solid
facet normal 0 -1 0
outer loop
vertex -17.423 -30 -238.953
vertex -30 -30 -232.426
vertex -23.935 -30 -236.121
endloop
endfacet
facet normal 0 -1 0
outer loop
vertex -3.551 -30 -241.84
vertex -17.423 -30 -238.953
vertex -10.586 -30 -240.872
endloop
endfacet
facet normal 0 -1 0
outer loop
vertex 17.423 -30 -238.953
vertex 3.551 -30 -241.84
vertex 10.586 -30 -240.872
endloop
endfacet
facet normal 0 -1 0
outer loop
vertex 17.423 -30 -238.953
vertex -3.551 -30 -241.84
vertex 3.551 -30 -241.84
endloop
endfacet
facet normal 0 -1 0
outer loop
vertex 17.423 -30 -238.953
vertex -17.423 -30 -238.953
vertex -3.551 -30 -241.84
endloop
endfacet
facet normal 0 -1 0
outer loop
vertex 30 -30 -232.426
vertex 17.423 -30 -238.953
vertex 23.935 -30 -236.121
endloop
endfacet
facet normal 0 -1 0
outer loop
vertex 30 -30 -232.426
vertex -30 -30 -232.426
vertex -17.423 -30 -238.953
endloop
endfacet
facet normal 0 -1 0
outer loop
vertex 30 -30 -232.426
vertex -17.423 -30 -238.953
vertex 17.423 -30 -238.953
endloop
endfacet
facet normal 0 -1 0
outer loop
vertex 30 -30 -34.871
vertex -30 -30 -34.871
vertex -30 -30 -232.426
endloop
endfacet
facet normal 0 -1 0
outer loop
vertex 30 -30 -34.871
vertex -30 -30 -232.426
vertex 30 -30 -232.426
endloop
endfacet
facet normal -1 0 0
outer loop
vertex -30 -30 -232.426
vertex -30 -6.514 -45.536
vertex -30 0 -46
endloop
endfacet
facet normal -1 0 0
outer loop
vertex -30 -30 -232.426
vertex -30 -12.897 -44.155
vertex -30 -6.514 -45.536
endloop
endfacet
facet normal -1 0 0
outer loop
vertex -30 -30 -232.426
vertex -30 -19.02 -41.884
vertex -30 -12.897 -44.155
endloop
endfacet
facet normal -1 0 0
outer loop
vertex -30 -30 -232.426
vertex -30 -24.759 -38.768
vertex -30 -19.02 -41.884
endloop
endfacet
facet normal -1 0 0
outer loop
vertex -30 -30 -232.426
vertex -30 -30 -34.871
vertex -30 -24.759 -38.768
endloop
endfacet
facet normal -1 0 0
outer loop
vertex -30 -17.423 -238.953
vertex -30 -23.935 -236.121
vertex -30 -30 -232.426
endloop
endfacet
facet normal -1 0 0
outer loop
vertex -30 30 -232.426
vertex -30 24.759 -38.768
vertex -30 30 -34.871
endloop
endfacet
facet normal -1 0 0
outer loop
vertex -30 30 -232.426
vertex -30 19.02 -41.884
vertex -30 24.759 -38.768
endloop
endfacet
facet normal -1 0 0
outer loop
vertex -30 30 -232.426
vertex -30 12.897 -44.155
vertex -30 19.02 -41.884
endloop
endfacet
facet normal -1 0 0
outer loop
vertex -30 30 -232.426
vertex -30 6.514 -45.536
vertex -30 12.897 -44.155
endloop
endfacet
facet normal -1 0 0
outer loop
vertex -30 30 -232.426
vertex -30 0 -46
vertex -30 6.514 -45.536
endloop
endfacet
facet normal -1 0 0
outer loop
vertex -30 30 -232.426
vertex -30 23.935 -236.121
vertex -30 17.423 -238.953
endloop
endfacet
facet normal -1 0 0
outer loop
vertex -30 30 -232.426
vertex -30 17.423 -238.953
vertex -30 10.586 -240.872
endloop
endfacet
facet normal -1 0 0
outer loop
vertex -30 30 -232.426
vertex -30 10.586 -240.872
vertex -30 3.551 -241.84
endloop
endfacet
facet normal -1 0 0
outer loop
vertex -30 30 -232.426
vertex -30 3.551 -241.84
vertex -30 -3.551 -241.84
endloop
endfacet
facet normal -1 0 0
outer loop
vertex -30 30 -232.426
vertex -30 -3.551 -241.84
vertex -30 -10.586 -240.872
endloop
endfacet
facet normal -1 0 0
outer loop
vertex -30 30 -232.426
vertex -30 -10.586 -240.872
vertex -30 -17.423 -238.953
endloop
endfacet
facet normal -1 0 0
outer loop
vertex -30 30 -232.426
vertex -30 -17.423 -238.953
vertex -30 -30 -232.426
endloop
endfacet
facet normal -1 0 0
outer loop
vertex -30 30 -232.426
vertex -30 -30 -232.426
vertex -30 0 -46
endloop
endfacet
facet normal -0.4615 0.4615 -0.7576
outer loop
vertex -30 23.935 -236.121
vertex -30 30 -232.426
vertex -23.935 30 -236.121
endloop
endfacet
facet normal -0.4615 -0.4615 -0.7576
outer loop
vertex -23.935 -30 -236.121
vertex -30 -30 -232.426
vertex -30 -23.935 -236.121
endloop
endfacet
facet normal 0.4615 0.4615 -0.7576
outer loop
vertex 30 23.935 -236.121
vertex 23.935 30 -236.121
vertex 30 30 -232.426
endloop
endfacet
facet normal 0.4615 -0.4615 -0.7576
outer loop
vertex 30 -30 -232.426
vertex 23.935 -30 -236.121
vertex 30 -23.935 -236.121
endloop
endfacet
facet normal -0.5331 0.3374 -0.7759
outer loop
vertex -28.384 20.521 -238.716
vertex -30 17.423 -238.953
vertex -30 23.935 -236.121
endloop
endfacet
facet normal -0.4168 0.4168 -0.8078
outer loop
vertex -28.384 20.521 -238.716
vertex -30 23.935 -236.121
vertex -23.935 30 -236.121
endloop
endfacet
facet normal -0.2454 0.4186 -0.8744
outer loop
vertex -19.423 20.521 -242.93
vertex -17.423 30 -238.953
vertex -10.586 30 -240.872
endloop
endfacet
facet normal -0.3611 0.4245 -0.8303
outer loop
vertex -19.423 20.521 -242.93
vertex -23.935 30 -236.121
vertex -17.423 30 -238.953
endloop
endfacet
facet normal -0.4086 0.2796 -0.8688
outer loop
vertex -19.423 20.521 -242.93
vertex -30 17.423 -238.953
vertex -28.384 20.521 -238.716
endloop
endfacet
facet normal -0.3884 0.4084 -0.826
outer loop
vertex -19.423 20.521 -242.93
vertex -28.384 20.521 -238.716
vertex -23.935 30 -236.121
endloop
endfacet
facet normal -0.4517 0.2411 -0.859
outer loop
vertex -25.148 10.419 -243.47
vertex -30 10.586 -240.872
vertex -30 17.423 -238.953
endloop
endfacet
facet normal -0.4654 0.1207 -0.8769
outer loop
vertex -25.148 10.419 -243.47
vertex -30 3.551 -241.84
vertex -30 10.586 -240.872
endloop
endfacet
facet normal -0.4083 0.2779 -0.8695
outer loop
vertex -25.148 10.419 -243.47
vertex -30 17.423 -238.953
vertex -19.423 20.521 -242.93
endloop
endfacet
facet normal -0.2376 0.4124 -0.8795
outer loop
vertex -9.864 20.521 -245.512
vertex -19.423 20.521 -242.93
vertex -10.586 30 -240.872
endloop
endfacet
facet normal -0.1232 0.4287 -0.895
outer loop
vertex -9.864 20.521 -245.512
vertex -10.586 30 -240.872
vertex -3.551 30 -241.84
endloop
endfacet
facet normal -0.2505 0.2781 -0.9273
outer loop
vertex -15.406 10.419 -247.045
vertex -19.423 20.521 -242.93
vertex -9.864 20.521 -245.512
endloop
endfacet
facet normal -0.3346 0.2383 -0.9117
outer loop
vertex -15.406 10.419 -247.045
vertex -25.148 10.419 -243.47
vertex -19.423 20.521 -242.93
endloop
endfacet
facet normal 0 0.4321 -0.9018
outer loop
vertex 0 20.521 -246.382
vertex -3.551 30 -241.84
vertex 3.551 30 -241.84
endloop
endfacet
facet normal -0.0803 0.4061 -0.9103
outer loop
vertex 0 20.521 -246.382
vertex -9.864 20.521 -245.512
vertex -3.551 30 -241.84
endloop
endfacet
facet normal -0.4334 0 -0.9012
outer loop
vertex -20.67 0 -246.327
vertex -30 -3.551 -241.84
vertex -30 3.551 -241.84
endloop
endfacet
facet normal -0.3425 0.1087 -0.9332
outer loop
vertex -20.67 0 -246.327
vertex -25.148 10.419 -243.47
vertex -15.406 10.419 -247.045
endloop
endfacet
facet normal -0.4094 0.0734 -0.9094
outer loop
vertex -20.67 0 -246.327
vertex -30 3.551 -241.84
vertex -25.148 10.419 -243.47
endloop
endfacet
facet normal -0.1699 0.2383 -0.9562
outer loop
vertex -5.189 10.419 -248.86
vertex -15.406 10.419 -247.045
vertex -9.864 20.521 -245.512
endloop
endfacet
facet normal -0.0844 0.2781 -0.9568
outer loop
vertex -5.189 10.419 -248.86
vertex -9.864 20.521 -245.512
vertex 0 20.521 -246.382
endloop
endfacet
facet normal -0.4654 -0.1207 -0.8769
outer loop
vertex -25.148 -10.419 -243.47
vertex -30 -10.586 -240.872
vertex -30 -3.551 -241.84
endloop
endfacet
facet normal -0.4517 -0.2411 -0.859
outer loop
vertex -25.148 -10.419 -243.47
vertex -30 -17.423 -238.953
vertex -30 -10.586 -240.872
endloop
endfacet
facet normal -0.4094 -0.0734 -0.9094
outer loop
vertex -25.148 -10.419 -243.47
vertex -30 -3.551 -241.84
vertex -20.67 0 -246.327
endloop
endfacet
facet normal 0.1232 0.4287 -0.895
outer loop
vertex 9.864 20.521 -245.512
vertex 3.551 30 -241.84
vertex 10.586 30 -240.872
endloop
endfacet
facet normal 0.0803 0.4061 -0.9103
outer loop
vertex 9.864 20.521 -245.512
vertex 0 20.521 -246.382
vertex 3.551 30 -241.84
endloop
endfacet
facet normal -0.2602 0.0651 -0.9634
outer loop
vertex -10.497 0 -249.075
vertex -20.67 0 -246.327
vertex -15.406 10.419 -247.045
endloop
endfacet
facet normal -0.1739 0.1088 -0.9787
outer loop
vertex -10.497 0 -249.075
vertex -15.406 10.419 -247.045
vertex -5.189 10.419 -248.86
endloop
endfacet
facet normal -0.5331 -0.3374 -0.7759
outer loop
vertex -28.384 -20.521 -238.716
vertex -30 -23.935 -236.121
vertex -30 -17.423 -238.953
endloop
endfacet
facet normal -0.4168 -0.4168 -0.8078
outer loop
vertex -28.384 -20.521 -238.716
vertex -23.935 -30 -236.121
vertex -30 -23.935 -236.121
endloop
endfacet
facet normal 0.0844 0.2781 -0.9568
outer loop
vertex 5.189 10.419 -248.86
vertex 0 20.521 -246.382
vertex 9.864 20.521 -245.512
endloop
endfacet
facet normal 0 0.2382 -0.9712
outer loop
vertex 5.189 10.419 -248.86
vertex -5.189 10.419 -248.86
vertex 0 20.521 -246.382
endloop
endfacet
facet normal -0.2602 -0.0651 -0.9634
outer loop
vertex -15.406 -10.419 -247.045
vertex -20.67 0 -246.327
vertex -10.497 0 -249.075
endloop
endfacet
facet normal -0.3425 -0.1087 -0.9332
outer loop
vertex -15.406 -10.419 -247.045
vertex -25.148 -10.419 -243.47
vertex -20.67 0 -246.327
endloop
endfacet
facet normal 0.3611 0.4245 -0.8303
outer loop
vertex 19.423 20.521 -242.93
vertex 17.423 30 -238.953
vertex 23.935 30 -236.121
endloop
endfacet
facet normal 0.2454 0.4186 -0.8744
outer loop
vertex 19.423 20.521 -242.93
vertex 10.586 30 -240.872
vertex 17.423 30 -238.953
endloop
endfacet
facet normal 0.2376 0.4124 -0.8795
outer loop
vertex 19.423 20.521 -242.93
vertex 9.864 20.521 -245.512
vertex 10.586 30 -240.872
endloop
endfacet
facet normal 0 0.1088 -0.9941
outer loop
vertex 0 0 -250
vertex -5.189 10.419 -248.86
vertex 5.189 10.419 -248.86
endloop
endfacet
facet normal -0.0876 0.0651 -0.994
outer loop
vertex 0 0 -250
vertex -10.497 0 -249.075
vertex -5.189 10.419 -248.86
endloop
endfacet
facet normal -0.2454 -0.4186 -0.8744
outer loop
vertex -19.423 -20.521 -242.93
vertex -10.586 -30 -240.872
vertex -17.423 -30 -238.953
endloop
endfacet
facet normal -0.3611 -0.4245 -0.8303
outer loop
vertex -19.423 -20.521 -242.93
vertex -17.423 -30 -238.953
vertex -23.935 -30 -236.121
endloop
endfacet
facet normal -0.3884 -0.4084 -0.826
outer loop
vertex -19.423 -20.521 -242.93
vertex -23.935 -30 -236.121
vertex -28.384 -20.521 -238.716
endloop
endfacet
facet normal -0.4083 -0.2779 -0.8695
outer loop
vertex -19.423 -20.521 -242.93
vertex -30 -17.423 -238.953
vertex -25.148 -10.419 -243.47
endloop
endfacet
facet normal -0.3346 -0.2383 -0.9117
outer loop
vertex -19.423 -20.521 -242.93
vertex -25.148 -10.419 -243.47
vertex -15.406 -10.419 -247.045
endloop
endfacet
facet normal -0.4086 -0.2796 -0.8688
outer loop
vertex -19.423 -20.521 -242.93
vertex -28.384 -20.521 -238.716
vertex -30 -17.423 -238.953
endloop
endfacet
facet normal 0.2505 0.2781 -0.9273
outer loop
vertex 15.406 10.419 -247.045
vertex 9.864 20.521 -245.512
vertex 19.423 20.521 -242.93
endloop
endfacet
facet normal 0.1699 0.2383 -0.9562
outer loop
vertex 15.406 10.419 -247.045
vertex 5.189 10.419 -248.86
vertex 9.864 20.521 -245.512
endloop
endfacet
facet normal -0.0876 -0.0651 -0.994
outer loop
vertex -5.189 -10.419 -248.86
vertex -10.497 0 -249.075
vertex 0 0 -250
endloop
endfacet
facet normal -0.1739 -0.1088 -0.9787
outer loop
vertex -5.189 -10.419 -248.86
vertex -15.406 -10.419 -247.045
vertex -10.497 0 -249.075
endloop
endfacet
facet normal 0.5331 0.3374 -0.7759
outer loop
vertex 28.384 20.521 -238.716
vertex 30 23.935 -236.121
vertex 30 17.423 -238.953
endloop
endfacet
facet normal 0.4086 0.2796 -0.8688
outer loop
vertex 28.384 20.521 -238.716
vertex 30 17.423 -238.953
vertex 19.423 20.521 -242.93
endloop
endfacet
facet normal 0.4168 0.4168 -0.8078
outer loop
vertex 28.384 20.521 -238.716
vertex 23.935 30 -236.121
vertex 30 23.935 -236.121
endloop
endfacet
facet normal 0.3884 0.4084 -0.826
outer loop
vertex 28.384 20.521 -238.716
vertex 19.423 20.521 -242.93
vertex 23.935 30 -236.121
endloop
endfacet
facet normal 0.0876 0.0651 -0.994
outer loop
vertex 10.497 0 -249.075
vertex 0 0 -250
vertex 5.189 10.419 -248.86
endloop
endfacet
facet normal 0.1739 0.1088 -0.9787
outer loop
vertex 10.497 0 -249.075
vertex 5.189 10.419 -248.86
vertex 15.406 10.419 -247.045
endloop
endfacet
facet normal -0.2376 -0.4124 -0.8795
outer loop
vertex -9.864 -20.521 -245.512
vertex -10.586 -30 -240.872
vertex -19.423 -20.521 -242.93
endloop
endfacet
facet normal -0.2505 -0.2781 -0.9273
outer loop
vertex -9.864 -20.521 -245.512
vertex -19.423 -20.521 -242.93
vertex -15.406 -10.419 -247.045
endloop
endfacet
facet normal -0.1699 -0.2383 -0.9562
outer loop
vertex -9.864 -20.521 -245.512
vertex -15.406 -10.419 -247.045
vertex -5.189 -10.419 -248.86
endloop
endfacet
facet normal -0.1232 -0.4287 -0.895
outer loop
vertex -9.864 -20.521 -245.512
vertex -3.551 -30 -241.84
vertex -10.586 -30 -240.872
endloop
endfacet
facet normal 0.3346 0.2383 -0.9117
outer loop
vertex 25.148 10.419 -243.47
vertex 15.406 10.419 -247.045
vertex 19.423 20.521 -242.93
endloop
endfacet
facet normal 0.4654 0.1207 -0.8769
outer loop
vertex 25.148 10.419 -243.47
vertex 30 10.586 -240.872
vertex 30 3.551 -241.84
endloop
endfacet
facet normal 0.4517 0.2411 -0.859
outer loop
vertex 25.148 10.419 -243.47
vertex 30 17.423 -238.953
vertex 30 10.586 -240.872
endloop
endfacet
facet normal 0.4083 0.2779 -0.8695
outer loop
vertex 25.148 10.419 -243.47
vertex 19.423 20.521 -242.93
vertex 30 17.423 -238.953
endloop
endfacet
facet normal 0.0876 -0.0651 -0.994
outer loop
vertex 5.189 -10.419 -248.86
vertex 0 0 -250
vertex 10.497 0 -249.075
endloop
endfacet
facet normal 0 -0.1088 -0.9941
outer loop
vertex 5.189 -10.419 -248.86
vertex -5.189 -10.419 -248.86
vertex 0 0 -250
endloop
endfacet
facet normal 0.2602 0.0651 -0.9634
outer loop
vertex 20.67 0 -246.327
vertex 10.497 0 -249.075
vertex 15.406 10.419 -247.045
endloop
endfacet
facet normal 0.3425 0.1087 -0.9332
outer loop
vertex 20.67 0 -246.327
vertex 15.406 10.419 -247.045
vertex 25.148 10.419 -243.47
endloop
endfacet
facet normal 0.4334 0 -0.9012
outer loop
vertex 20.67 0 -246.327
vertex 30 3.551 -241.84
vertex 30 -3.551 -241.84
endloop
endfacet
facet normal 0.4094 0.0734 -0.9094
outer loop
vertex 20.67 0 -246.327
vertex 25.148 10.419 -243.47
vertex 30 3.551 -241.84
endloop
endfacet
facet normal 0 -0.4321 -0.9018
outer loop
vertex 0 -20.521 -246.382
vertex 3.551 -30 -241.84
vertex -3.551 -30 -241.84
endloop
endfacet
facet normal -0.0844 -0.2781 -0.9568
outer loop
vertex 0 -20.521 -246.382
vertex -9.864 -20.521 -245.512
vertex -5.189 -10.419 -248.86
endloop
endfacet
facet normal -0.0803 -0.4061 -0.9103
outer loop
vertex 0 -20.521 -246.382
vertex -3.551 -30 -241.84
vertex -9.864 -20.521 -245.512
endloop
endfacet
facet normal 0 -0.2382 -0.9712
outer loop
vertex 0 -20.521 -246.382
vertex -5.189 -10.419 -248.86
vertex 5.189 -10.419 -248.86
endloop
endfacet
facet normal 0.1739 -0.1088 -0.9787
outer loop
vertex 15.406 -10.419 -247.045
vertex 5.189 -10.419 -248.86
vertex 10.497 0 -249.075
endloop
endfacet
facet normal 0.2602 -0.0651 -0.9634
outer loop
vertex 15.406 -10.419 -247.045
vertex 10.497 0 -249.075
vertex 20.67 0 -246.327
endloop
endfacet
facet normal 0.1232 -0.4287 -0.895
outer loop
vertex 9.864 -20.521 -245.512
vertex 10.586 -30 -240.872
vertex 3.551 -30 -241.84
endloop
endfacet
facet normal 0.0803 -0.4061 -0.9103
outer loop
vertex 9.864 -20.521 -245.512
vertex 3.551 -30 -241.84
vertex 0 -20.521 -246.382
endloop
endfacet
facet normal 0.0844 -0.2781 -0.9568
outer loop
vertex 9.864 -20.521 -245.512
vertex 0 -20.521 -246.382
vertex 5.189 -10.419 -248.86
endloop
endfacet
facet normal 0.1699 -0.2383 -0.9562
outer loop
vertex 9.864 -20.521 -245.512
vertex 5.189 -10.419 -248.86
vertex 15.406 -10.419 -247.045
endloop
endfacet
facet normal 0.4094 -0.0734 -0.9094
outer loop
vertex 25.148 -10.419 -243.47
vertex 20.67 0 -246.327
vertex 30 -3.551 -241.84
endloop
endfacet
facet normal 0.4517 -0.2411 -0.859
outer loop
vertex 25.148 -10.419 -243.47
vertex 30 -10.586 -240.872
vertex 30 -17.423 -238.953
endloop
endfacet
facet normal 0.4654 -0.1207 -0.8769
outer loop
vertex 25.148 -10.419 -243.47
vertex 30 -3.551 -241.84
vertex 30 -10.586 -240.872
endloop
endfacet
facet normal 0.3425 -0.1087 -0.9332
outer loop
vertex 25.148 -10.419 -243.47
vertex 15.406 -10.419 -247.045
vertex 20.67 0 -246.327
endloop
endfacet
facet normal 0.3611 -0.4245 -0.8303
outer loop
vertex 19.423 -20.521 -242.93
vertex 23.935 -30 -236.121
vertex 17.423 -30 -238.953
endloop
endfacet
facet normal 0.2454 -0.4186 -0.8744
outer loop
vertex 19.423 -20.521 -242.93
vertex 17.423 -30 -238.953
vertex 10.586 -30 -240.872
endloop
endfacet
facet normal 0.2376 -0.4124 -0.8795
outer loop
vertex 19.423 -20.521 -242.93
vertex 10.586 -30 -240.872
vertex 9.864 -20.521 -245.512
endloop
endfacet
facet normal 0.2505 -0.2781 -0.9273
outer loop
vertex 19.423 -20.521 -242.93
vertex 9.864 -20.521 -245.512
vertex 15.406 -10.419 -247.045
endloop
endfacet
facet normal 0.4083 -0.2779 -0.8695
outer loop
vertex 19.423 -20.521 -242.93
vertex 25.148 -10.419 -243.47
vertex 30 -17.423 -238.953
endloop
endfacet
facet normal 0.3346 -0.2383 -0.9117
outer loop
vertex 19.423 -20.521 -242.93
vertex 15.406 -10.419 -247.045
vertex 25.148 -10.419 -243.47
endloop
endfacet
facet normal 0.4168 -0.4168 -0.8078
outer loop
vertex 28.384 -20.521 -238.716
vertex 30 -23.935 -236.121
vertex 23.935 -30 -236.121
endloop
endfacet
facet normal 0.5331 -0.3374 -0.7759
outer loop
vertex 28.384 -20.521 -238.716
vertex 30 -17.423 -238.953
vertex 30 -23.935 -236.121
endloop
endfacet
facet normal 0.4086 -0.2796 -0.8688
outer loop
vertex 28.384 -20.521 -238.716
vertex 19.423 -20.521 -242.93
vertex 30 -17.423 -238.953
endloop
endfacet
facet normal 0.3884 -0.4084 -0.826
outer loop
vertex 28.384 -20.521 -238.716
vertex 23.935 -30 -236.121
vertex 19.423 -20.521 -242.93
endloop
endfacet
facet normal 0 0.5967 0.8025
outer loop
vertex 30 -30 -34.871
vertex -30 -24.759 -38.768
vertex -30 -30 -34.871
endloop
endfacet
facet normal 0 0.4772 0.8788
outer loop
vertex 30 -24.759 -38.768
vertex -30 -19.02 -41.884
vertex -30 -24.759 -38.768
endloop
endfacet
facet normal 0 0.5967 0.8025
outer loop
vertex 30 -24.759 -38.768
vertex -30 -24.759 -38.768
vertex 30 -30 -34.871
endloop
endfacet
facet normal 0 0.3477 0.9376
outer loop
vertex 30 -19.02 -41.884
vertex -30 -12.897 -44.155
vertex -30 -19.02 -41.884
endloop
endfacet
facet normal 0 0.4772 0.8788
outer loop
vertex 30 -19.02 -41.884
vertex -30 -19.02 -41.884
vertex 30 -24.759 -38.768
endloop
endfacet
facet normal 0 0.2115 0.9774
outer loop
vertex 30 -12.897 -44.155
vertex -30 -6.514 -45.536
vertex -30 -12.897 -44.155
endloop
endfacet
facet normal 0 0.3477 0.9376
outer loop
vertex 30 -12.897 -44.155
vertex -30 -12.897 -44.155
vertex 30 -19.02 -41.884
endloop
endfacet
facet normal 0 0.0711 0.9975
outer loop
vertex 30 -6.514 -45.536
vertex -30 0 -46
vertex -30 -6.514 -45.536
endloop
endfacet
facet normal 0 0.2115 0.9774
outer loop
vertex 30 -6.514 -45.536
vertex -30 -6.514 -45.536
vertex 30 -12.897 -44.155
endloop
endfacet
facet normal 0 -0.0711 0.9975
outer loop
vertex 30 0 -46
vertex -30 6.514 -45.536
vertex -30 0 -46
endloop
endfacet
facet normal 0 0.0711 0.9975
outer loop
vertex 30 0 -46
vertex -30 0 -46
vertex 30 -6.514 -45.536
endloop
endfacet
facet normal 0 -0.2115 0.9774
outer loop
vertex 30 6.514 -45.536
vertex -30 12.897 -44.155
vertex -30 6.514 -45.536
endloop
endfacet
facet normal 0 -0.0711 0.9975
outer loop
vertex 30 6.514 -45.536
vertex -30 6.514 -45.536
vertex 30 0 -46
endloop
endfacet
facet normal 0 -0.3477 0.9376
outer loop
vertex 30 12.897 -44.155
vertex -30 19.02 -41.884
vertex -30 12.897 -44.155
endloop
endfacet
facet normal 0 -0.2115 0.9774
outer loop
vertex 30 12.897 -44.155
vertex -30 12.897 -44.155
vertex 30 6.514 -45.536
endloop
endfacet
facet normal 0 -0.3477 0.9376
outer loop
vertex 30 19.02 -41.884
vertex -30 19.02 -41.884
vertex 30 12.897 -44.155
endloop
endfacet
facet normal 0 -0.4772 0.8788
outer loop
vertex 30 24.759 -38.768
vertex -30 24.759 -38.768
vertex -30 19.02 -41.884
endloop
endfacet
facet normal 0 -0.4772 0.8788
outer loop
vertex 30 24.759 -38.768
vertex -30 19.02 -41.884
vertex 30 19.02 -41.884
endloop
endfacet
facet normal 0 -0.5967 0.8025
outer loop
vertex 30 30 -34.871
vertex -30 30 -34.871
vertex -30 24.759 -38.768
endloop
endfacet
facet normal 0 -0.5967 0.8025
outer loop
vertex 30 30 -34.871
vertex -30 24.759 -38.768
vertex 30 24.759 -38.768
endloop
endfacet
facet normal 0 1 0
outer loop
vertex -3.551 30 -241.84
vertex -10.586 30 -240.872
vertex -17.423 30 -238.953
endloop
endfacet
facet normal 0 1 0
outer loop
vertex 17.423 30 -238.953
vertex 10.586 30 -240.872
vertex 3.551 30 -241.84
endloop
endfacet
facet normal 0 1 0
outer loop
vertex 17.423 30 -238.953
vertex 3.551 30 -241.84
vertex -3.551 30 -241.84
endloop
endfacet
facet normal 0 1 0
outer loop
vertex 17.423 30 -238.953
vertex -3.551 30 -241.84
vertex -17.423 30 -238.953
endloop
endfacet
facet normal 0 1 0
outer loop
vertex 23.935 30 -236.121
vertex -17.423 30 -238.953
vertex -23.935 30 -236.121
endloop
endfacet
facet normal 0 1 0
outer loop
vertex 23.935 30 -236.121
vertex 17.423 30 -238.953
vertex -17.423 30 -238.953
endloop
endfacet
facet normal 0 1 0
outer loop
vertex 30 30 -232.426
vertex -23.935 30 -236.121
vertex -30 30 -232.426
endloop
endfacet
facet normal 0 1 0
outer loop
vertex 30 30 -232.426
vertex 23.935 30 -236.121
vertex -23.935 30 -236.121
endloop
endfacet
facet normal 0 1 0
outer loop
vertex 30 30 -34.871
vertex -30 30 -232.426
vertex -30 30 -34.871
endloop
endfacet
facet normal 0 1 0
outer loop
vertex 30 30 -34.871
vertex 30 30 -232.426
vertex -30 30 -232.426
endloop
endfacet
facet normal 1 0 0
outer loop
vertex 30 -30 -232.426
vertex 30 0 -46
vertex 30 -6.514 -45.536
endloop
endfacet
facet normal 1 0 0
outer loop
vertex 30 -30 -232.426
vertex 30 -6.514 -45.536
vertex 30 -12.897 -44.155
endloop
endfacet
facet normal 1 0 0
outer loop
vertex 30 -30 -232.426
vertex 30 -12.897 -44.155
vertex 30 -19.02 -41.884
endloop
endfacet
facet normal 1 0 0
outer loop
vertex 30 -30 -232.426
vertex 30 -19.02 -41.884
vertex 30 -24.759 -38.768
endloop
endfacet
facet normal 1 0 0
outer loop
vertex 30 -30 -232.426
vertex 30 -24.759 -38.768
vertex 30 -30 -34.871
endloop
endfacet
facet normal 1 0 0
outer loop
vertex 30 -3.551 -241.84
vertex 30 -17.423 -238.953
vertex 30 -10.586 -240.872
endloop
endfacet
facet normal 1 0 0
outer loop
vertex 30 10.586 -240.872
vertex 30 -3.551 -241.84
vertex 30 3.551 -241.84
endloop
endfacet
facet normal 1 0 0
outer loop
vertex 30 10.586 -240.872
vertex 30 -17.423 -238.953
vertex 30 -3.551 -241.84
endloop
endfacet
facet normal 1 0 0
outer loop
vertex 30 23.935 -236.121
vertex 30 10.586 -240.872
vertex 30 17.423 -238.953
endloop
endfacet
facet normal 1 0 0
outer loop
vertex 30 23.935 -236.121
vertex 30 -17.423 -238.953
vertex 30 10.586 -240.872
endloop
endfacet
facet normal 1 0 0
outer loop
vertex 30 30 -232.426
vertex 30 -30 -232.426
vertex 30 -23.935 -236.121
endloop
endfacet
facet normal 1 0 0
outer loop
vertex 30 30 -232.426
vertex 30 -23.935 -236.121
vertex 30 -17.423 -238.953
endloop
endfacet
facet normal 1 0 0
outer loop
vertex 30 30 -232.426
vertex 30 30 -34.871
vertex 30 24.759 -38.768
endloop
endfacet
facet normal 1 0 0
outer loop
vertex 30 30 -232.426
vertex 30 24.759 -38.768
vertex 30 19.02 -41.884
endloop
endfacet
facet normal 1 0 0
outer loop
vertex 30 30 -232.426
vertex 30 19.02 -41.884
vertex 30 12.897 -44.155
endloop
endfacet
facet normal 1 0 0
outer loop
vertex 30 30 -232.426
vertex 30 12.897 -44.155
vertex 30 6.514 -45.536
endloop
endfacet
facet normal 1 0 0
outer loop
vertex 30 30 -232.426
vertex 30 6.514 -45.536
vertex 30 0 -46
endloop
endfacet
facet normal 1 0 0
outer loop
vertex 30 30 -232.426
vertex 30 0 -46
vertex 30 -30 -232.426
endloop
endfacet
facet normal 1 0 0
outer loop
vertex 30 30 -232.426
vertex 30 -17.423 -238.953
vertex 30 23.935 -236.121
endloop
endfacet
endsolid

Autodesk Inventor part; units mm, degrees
ref_plane "YZ Plane" through (0, 0, 0) normal (1, 0, 0) x (0, 1, 0)
ref_plane "XZ Plane" through (0, 0, 0) normal (0, 1, 0) x (-1, 0, 0)
ref_plane "XY Plane" through (0, 0, 0) normal (0, 0, 1) x (1, 0, 0)
sketch "Sketch11" plane through (0, 0, 0) normal (1, 0, 0) x (0, 1, 0)
  line L0 (-2180.7929, 0) -> (12762.7576, 0) construction
  line L1 (0, -333.2) -> (0, 109.2) projected
  circle A0 centre (0, 0) radius 32.5
  circle A1 centre (0, 0) radius 46
  line L2 (-30, -34.8712) -> (-30, -241.9615)
  line L3 (-30, -241.9615) -> (30, -241.9615)
  line L4 (30, -241.9615) -> (30, -34.8712)
  arc A2 (-30, -241.9615) -> (30, -241.9615) centre (0, -190) ccw
  arc A3 (30, -241.9615) -> (50, -223.1662) centre (0, -190) ccw
  line L5 (0, -270) -> (50, -270)
  line L6 (50, -270) -> (50, -223.1662)
  arc A4 (30, -34.8712) -> (32, -240.7543) centre (10627.9646, -34.8712) ccw
  point P0 (-30, -241.9615)
  point P1 (0, -250)
  point P2 (0, -241.9615)
  point P3 (0, -185.7103)
  point P4 (0, -250)
  point P5 (0, -46)
  dimension "d77" = 65
  dimension "d78" = 92
  dimension "d79" = 60
  dimension "d85" = 20
  dimension "d86" = 20
  dimension "d87" = 60
  dimension "d89" = 32
  dimension "d90" = 250
extrude "Extrusion11" add sketch "Sketch11" along normal mid plane 60 contours L1 A1 L4 L3
revolve "Revolution1" add sketch "Sketch11" angle 180 mid plane about axis through (0, 0, -10) along (0, 0, 1) picked at (16.8404, -243.4348) contours L1 L3 A2
revolve "Revolution2" cut sketch "Sketch11" angle 360 about axis through (0, 0, -10) along (0, 0, 1) contours L1 A2 A3 L6 L5
mirror "Mirror1" about plane through (0, 0, 0) normal (0, 1, 0)
fillet "Fillet7" [suppressed]
properties part number "shank_2"
